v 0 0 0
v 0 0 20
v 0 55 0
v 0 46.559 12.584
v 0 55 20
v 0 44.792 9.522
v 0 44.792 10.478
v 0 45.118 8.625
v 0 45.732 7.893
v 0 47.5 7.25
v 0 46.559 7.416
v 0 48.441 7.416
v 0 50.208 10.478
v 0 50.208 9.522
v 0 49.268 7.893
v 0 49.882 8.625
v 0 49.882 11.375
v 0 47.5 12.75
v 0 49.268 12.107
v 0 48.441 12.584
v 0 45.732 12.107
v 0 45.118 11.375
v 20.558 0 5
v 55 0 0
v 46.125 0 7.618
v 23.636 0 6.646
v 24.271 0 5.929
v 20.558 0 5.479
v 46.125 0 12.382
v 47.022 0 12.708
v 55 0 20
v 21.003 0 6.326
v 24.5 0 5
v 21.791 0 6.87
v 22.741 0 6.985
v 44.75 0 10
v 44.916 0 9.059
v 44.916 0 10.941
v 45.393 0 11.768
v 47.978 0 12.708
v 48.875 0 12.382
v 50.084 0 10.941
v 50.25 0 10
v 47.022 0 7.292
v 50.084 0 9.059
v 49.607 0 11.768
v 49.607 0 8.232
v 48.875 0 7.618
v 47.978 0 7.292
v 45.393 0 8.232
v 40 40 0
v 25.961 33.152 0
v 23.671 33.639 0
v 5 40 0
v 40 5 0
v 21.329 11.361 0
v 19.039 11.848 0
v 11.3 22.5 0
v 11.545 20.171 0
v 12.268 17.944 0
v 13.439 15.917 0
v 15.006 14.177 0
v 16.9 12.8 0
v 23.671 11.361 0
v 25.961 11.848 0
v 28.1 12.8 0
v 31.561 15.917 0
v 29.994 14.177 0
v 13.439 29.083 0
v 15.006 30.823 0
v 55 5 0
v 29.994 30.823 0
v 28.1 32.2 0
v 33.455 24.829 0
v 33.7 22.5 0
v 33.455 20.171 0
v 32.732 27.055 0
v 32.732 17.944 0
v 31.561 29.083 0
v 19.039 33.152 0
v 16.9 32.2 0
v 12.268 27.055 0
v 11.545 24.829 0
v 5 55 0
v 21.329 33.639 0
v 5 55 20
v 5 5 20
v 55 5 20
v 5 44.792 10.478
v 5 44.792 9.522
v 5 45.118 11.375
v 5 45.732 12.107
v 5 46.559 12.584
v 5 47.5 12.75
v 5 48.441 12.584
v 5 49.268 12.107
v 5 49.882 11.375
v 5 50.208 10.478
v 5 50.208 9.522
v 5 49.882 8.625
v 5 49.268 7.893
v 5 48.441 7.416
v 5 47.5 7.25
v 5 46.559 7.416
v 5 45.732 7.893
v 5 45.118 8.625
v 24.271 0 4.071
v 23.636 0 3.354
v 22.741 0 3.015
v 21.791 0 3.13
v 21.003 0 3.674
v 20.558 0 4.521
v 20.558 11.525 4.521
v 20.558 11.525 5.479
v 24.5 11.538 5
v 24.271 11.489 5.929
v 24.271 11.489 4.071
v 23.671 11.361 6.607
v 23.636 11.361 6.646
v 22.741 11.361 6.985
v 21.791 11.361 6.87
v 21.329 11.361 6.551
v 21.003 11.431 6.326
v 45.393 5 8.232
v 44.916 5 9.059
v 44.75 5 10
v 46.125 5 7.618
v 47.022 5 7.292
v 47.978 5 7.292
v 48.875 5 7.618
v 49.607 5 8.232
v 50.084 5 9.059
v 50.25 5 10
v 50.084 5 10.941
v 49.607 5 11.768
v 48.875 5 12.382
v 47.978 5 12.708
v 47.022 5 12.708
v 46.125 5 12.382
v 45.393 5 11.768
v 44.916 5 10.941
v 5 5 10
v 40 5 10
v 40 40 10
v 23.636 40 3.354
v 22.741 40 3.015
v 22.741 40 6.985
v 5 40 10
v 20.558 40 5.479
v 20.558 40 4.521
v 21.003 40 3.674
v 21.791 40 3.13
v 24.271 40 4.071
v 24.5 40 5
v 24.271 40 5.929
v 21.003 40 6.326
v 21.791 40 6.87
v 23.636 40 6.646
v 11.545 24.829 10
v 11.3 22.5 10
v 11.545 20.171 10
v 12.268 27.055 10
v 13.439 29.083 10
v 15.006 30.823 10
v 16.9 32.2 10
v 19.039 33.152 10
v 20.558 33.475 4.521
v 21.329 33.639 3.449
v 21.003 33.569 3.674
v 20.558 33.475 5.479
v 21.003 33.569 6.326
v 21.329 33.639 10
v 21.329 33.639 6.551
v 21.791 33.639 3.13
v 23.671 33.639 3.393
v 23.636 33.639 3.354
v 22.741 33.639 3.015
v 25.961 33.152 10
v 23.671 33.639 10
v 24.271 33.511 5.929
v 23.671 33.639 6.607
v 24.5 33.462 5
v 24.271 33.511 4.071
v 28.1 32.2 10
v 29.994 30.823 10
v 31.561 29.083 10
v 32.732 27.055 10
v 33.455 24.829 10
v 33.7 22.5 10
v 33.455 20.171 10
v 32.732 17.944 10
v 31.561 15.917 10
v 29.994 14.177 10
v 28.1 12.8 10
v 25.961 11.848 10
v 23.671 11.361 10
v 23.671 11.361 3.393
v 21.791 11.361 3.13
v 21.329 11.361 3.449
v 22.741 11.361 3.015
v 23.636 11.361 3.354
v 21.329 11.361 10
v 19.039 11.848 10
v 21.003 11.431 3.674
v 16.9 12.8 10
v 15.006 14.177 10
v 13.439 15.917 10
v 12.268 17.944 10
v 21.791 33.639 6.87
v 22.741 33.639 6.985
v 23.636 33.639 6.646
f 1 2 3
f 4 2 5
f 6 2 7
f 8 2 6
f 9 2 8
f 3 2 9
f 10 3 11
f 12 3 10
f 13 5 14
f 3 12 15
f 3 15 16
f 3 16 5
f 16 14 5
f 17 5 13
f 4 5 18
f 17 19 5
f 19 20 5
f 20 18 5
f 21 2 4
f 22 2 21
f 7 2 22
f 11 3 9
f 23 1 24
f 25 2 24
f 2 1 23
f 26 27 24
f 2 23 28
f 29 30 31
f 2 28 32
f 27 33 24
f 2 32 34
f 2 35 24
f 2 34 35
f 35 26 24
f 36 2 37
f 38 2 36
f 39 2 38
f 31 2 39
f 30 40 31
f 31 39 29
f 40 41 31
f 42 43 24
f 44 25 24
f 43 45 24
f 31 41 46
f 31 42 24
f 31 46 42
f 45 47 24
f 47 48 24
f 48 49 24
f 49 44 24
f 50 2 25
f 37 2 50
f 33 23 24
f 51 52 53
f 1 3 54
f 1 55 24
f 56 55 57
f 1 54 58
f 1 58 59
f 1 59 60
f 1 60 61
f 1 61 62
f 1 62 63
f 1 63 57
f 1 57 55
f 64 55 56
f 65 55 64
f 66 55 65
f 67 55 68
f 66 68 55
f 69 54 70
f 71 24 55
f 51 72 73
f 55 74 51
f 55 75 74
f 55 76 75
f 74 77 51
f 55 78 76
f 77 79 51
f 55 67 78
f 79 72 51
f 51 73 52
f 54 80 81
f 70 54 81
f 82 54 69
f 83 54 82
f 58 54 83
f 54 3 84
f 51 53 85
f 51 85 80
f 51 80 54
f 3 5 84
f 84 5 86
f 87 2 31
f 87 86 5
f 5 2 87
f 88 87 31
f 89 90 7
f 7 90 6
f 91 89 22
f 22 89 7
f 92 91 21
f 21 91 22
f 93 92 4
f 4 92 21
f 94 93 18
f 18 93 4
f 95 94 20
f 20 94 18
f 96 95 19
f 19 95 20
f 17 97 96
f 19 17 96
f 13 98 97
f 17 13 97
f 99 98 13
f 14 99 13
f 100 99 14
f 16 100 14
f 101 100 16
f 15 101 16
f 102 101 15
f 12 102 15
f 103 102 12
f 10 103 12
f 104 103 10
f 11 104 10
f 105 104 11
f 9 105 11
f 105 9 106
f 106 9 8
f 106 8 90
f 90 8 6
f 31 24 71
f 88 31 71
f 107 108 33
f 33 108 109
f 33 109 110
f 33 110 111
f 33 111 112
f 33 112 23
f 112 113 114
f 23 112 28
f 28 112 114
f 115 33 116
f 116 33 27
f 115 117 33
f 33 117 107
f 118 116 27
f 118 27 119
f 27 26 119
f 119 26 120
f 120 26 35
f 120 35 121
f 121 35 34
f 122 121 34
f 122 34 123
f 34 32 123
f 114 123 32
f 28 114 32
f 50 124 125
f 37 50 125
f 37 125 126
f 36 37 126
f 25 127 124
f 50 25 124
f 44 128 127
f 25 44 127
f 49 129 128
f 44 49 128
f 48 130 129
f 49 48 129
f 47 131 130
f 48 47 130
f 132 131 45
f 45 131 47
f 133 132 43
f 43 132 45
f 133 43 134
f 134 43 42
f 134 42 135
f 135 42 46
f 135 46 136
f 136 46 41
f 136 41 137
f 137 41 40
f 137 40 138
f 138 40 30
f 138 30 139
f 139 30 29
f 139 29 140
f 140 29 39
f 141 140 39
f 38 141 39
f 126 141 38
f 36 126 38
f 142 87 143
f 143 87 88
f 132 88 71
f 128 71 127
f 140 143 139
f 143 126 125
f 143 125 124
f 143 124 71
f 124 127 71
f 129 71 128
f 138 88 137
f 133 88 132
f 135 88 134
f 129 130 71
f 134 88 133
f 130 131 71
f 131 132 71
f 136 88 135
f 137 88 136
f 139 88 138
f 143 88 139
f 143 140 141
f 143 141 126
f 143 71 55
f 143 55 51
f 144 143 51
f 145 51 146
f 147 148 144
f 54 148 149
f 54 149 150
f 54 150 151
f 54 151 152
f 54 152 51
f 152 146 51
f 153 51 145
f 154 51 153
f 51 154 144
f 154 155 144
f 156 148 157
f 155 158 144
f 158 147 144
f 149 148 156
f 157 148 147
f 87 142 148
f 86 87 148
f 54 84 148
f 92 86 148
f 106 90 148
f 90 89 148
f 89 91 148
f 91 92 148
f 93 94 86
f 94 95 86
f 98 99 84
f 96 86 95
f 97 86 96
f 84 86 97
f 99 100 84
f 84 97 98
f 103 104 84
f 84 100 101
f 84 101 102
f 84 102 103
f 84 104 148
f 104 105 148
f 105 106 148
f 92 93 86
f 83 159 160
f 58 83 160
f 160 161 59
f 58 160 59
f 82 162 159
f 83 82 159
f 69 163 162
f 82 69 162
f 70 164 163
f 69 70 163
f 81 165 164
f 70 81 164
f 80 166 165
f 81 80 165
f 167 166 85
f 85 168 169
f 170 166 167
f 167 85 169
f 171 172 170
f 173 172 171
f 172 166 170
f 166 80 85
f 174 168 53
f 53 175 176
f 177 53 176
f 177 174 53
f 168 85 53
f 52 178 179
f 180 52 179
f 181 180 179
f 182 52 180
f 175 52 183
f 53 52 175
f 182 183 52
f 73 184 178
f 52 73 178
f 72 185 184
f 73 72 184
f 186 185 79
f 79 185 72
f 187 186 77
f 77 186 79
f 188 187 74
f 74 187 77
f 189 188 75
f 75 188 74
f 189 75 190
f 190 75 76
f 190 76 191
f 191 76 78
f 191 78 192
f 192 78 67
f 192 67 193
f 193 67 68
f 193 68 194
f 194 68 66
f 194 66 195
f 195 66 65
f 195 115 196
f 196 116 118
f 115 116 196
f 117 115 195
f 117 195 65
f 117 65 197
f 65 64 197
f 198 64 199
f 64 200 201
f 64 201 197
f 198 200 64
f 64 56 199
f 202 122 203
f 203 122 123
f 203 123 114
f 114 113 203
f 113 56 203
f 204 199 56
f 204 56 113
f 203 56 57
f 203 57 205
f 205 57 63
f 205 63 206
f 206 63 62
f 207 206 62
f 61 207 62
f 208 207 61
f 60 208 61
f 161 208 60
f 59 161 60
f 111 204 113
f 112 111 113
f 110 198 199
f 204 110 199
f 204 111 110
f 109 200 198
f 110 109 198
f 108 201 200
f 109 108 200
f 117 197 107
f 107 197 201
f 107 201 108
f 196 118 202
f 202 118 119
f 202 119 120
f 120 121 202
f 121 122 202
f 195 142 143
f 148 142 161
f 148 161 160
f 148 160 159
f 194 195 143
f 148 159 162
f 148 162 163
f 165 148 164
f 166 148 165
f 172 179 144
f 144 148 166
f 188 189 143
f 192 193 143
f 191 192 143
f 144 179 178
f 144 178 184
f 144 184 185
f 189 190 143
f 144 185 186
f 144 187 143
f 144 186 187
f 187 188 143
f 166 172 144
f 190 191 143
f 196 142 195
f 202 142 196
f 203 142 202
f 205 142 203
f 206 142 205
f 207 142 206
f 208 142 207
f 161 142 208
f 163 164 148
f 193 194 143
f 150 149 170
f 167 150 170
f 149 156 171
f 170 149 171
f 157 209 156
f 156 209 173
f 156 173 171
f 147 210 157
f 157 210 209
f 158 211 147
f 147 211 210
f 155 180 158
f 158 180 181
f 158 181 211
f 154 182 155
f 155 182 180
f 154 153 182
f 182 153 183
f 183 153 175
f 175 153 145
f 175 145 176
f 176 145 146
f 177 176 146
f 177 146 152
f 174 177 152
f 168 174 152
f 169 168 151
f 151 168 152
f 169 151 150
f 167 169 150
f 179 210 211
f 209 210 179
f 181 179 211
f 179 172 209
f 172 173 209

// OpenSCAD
barwidth = 20;
width_ridge=4;
widthNema17=45;
nema17holeOffset =6;
nema17innerHole=25/2;
nema17Shaft=8/2;
nema17Center = widthNema17/2;
nema17HoleDistance =31;

motorThickNess=5;
offsetx =0;
offsety  =0;



height = widthNema17-5;
width = widthNema17-5;

thickness=barwidth;
spacing_bars = 50;
largeCircle = 70.0;
holeSize=5.5;
od608=22;
id608=8;
holes = [

];



difference() {
union() {

cube([width,width,thickness/2],false);

cube([width+15,5,thickness],false);
cube([5,width+15,thickness],false);


}



translate([0,0,-0.1]) {


	for(i = holes) {
		translate([offsetx + i[0],offsety + i[1],0])
			cylinder(h=100,r=i[2]/2, center = false, $fs=1);
	}


}

translate([nema17Center,nema17Center,-1]) 
	cylinder(h=100,r=od608/2+0.2, center = false, $fs=1);



translate([nema17Center,0,thickness/4]) 
	rotate([-90,0,0])
	cylinder(h=100,r=4/2, center = false, $fs=1);

translate([width+15/2,-1,thickness/2]) 
	rotate([-90,0,0])
	cylinder(h=100,r=5.5/2, center = false, $fs=1);

translate([-1,width+15/2,thickness/2]) 
	rotate([0,90,0])
	cylinder(h=100,r=5.5/2, center = false, $fs=1);
}
